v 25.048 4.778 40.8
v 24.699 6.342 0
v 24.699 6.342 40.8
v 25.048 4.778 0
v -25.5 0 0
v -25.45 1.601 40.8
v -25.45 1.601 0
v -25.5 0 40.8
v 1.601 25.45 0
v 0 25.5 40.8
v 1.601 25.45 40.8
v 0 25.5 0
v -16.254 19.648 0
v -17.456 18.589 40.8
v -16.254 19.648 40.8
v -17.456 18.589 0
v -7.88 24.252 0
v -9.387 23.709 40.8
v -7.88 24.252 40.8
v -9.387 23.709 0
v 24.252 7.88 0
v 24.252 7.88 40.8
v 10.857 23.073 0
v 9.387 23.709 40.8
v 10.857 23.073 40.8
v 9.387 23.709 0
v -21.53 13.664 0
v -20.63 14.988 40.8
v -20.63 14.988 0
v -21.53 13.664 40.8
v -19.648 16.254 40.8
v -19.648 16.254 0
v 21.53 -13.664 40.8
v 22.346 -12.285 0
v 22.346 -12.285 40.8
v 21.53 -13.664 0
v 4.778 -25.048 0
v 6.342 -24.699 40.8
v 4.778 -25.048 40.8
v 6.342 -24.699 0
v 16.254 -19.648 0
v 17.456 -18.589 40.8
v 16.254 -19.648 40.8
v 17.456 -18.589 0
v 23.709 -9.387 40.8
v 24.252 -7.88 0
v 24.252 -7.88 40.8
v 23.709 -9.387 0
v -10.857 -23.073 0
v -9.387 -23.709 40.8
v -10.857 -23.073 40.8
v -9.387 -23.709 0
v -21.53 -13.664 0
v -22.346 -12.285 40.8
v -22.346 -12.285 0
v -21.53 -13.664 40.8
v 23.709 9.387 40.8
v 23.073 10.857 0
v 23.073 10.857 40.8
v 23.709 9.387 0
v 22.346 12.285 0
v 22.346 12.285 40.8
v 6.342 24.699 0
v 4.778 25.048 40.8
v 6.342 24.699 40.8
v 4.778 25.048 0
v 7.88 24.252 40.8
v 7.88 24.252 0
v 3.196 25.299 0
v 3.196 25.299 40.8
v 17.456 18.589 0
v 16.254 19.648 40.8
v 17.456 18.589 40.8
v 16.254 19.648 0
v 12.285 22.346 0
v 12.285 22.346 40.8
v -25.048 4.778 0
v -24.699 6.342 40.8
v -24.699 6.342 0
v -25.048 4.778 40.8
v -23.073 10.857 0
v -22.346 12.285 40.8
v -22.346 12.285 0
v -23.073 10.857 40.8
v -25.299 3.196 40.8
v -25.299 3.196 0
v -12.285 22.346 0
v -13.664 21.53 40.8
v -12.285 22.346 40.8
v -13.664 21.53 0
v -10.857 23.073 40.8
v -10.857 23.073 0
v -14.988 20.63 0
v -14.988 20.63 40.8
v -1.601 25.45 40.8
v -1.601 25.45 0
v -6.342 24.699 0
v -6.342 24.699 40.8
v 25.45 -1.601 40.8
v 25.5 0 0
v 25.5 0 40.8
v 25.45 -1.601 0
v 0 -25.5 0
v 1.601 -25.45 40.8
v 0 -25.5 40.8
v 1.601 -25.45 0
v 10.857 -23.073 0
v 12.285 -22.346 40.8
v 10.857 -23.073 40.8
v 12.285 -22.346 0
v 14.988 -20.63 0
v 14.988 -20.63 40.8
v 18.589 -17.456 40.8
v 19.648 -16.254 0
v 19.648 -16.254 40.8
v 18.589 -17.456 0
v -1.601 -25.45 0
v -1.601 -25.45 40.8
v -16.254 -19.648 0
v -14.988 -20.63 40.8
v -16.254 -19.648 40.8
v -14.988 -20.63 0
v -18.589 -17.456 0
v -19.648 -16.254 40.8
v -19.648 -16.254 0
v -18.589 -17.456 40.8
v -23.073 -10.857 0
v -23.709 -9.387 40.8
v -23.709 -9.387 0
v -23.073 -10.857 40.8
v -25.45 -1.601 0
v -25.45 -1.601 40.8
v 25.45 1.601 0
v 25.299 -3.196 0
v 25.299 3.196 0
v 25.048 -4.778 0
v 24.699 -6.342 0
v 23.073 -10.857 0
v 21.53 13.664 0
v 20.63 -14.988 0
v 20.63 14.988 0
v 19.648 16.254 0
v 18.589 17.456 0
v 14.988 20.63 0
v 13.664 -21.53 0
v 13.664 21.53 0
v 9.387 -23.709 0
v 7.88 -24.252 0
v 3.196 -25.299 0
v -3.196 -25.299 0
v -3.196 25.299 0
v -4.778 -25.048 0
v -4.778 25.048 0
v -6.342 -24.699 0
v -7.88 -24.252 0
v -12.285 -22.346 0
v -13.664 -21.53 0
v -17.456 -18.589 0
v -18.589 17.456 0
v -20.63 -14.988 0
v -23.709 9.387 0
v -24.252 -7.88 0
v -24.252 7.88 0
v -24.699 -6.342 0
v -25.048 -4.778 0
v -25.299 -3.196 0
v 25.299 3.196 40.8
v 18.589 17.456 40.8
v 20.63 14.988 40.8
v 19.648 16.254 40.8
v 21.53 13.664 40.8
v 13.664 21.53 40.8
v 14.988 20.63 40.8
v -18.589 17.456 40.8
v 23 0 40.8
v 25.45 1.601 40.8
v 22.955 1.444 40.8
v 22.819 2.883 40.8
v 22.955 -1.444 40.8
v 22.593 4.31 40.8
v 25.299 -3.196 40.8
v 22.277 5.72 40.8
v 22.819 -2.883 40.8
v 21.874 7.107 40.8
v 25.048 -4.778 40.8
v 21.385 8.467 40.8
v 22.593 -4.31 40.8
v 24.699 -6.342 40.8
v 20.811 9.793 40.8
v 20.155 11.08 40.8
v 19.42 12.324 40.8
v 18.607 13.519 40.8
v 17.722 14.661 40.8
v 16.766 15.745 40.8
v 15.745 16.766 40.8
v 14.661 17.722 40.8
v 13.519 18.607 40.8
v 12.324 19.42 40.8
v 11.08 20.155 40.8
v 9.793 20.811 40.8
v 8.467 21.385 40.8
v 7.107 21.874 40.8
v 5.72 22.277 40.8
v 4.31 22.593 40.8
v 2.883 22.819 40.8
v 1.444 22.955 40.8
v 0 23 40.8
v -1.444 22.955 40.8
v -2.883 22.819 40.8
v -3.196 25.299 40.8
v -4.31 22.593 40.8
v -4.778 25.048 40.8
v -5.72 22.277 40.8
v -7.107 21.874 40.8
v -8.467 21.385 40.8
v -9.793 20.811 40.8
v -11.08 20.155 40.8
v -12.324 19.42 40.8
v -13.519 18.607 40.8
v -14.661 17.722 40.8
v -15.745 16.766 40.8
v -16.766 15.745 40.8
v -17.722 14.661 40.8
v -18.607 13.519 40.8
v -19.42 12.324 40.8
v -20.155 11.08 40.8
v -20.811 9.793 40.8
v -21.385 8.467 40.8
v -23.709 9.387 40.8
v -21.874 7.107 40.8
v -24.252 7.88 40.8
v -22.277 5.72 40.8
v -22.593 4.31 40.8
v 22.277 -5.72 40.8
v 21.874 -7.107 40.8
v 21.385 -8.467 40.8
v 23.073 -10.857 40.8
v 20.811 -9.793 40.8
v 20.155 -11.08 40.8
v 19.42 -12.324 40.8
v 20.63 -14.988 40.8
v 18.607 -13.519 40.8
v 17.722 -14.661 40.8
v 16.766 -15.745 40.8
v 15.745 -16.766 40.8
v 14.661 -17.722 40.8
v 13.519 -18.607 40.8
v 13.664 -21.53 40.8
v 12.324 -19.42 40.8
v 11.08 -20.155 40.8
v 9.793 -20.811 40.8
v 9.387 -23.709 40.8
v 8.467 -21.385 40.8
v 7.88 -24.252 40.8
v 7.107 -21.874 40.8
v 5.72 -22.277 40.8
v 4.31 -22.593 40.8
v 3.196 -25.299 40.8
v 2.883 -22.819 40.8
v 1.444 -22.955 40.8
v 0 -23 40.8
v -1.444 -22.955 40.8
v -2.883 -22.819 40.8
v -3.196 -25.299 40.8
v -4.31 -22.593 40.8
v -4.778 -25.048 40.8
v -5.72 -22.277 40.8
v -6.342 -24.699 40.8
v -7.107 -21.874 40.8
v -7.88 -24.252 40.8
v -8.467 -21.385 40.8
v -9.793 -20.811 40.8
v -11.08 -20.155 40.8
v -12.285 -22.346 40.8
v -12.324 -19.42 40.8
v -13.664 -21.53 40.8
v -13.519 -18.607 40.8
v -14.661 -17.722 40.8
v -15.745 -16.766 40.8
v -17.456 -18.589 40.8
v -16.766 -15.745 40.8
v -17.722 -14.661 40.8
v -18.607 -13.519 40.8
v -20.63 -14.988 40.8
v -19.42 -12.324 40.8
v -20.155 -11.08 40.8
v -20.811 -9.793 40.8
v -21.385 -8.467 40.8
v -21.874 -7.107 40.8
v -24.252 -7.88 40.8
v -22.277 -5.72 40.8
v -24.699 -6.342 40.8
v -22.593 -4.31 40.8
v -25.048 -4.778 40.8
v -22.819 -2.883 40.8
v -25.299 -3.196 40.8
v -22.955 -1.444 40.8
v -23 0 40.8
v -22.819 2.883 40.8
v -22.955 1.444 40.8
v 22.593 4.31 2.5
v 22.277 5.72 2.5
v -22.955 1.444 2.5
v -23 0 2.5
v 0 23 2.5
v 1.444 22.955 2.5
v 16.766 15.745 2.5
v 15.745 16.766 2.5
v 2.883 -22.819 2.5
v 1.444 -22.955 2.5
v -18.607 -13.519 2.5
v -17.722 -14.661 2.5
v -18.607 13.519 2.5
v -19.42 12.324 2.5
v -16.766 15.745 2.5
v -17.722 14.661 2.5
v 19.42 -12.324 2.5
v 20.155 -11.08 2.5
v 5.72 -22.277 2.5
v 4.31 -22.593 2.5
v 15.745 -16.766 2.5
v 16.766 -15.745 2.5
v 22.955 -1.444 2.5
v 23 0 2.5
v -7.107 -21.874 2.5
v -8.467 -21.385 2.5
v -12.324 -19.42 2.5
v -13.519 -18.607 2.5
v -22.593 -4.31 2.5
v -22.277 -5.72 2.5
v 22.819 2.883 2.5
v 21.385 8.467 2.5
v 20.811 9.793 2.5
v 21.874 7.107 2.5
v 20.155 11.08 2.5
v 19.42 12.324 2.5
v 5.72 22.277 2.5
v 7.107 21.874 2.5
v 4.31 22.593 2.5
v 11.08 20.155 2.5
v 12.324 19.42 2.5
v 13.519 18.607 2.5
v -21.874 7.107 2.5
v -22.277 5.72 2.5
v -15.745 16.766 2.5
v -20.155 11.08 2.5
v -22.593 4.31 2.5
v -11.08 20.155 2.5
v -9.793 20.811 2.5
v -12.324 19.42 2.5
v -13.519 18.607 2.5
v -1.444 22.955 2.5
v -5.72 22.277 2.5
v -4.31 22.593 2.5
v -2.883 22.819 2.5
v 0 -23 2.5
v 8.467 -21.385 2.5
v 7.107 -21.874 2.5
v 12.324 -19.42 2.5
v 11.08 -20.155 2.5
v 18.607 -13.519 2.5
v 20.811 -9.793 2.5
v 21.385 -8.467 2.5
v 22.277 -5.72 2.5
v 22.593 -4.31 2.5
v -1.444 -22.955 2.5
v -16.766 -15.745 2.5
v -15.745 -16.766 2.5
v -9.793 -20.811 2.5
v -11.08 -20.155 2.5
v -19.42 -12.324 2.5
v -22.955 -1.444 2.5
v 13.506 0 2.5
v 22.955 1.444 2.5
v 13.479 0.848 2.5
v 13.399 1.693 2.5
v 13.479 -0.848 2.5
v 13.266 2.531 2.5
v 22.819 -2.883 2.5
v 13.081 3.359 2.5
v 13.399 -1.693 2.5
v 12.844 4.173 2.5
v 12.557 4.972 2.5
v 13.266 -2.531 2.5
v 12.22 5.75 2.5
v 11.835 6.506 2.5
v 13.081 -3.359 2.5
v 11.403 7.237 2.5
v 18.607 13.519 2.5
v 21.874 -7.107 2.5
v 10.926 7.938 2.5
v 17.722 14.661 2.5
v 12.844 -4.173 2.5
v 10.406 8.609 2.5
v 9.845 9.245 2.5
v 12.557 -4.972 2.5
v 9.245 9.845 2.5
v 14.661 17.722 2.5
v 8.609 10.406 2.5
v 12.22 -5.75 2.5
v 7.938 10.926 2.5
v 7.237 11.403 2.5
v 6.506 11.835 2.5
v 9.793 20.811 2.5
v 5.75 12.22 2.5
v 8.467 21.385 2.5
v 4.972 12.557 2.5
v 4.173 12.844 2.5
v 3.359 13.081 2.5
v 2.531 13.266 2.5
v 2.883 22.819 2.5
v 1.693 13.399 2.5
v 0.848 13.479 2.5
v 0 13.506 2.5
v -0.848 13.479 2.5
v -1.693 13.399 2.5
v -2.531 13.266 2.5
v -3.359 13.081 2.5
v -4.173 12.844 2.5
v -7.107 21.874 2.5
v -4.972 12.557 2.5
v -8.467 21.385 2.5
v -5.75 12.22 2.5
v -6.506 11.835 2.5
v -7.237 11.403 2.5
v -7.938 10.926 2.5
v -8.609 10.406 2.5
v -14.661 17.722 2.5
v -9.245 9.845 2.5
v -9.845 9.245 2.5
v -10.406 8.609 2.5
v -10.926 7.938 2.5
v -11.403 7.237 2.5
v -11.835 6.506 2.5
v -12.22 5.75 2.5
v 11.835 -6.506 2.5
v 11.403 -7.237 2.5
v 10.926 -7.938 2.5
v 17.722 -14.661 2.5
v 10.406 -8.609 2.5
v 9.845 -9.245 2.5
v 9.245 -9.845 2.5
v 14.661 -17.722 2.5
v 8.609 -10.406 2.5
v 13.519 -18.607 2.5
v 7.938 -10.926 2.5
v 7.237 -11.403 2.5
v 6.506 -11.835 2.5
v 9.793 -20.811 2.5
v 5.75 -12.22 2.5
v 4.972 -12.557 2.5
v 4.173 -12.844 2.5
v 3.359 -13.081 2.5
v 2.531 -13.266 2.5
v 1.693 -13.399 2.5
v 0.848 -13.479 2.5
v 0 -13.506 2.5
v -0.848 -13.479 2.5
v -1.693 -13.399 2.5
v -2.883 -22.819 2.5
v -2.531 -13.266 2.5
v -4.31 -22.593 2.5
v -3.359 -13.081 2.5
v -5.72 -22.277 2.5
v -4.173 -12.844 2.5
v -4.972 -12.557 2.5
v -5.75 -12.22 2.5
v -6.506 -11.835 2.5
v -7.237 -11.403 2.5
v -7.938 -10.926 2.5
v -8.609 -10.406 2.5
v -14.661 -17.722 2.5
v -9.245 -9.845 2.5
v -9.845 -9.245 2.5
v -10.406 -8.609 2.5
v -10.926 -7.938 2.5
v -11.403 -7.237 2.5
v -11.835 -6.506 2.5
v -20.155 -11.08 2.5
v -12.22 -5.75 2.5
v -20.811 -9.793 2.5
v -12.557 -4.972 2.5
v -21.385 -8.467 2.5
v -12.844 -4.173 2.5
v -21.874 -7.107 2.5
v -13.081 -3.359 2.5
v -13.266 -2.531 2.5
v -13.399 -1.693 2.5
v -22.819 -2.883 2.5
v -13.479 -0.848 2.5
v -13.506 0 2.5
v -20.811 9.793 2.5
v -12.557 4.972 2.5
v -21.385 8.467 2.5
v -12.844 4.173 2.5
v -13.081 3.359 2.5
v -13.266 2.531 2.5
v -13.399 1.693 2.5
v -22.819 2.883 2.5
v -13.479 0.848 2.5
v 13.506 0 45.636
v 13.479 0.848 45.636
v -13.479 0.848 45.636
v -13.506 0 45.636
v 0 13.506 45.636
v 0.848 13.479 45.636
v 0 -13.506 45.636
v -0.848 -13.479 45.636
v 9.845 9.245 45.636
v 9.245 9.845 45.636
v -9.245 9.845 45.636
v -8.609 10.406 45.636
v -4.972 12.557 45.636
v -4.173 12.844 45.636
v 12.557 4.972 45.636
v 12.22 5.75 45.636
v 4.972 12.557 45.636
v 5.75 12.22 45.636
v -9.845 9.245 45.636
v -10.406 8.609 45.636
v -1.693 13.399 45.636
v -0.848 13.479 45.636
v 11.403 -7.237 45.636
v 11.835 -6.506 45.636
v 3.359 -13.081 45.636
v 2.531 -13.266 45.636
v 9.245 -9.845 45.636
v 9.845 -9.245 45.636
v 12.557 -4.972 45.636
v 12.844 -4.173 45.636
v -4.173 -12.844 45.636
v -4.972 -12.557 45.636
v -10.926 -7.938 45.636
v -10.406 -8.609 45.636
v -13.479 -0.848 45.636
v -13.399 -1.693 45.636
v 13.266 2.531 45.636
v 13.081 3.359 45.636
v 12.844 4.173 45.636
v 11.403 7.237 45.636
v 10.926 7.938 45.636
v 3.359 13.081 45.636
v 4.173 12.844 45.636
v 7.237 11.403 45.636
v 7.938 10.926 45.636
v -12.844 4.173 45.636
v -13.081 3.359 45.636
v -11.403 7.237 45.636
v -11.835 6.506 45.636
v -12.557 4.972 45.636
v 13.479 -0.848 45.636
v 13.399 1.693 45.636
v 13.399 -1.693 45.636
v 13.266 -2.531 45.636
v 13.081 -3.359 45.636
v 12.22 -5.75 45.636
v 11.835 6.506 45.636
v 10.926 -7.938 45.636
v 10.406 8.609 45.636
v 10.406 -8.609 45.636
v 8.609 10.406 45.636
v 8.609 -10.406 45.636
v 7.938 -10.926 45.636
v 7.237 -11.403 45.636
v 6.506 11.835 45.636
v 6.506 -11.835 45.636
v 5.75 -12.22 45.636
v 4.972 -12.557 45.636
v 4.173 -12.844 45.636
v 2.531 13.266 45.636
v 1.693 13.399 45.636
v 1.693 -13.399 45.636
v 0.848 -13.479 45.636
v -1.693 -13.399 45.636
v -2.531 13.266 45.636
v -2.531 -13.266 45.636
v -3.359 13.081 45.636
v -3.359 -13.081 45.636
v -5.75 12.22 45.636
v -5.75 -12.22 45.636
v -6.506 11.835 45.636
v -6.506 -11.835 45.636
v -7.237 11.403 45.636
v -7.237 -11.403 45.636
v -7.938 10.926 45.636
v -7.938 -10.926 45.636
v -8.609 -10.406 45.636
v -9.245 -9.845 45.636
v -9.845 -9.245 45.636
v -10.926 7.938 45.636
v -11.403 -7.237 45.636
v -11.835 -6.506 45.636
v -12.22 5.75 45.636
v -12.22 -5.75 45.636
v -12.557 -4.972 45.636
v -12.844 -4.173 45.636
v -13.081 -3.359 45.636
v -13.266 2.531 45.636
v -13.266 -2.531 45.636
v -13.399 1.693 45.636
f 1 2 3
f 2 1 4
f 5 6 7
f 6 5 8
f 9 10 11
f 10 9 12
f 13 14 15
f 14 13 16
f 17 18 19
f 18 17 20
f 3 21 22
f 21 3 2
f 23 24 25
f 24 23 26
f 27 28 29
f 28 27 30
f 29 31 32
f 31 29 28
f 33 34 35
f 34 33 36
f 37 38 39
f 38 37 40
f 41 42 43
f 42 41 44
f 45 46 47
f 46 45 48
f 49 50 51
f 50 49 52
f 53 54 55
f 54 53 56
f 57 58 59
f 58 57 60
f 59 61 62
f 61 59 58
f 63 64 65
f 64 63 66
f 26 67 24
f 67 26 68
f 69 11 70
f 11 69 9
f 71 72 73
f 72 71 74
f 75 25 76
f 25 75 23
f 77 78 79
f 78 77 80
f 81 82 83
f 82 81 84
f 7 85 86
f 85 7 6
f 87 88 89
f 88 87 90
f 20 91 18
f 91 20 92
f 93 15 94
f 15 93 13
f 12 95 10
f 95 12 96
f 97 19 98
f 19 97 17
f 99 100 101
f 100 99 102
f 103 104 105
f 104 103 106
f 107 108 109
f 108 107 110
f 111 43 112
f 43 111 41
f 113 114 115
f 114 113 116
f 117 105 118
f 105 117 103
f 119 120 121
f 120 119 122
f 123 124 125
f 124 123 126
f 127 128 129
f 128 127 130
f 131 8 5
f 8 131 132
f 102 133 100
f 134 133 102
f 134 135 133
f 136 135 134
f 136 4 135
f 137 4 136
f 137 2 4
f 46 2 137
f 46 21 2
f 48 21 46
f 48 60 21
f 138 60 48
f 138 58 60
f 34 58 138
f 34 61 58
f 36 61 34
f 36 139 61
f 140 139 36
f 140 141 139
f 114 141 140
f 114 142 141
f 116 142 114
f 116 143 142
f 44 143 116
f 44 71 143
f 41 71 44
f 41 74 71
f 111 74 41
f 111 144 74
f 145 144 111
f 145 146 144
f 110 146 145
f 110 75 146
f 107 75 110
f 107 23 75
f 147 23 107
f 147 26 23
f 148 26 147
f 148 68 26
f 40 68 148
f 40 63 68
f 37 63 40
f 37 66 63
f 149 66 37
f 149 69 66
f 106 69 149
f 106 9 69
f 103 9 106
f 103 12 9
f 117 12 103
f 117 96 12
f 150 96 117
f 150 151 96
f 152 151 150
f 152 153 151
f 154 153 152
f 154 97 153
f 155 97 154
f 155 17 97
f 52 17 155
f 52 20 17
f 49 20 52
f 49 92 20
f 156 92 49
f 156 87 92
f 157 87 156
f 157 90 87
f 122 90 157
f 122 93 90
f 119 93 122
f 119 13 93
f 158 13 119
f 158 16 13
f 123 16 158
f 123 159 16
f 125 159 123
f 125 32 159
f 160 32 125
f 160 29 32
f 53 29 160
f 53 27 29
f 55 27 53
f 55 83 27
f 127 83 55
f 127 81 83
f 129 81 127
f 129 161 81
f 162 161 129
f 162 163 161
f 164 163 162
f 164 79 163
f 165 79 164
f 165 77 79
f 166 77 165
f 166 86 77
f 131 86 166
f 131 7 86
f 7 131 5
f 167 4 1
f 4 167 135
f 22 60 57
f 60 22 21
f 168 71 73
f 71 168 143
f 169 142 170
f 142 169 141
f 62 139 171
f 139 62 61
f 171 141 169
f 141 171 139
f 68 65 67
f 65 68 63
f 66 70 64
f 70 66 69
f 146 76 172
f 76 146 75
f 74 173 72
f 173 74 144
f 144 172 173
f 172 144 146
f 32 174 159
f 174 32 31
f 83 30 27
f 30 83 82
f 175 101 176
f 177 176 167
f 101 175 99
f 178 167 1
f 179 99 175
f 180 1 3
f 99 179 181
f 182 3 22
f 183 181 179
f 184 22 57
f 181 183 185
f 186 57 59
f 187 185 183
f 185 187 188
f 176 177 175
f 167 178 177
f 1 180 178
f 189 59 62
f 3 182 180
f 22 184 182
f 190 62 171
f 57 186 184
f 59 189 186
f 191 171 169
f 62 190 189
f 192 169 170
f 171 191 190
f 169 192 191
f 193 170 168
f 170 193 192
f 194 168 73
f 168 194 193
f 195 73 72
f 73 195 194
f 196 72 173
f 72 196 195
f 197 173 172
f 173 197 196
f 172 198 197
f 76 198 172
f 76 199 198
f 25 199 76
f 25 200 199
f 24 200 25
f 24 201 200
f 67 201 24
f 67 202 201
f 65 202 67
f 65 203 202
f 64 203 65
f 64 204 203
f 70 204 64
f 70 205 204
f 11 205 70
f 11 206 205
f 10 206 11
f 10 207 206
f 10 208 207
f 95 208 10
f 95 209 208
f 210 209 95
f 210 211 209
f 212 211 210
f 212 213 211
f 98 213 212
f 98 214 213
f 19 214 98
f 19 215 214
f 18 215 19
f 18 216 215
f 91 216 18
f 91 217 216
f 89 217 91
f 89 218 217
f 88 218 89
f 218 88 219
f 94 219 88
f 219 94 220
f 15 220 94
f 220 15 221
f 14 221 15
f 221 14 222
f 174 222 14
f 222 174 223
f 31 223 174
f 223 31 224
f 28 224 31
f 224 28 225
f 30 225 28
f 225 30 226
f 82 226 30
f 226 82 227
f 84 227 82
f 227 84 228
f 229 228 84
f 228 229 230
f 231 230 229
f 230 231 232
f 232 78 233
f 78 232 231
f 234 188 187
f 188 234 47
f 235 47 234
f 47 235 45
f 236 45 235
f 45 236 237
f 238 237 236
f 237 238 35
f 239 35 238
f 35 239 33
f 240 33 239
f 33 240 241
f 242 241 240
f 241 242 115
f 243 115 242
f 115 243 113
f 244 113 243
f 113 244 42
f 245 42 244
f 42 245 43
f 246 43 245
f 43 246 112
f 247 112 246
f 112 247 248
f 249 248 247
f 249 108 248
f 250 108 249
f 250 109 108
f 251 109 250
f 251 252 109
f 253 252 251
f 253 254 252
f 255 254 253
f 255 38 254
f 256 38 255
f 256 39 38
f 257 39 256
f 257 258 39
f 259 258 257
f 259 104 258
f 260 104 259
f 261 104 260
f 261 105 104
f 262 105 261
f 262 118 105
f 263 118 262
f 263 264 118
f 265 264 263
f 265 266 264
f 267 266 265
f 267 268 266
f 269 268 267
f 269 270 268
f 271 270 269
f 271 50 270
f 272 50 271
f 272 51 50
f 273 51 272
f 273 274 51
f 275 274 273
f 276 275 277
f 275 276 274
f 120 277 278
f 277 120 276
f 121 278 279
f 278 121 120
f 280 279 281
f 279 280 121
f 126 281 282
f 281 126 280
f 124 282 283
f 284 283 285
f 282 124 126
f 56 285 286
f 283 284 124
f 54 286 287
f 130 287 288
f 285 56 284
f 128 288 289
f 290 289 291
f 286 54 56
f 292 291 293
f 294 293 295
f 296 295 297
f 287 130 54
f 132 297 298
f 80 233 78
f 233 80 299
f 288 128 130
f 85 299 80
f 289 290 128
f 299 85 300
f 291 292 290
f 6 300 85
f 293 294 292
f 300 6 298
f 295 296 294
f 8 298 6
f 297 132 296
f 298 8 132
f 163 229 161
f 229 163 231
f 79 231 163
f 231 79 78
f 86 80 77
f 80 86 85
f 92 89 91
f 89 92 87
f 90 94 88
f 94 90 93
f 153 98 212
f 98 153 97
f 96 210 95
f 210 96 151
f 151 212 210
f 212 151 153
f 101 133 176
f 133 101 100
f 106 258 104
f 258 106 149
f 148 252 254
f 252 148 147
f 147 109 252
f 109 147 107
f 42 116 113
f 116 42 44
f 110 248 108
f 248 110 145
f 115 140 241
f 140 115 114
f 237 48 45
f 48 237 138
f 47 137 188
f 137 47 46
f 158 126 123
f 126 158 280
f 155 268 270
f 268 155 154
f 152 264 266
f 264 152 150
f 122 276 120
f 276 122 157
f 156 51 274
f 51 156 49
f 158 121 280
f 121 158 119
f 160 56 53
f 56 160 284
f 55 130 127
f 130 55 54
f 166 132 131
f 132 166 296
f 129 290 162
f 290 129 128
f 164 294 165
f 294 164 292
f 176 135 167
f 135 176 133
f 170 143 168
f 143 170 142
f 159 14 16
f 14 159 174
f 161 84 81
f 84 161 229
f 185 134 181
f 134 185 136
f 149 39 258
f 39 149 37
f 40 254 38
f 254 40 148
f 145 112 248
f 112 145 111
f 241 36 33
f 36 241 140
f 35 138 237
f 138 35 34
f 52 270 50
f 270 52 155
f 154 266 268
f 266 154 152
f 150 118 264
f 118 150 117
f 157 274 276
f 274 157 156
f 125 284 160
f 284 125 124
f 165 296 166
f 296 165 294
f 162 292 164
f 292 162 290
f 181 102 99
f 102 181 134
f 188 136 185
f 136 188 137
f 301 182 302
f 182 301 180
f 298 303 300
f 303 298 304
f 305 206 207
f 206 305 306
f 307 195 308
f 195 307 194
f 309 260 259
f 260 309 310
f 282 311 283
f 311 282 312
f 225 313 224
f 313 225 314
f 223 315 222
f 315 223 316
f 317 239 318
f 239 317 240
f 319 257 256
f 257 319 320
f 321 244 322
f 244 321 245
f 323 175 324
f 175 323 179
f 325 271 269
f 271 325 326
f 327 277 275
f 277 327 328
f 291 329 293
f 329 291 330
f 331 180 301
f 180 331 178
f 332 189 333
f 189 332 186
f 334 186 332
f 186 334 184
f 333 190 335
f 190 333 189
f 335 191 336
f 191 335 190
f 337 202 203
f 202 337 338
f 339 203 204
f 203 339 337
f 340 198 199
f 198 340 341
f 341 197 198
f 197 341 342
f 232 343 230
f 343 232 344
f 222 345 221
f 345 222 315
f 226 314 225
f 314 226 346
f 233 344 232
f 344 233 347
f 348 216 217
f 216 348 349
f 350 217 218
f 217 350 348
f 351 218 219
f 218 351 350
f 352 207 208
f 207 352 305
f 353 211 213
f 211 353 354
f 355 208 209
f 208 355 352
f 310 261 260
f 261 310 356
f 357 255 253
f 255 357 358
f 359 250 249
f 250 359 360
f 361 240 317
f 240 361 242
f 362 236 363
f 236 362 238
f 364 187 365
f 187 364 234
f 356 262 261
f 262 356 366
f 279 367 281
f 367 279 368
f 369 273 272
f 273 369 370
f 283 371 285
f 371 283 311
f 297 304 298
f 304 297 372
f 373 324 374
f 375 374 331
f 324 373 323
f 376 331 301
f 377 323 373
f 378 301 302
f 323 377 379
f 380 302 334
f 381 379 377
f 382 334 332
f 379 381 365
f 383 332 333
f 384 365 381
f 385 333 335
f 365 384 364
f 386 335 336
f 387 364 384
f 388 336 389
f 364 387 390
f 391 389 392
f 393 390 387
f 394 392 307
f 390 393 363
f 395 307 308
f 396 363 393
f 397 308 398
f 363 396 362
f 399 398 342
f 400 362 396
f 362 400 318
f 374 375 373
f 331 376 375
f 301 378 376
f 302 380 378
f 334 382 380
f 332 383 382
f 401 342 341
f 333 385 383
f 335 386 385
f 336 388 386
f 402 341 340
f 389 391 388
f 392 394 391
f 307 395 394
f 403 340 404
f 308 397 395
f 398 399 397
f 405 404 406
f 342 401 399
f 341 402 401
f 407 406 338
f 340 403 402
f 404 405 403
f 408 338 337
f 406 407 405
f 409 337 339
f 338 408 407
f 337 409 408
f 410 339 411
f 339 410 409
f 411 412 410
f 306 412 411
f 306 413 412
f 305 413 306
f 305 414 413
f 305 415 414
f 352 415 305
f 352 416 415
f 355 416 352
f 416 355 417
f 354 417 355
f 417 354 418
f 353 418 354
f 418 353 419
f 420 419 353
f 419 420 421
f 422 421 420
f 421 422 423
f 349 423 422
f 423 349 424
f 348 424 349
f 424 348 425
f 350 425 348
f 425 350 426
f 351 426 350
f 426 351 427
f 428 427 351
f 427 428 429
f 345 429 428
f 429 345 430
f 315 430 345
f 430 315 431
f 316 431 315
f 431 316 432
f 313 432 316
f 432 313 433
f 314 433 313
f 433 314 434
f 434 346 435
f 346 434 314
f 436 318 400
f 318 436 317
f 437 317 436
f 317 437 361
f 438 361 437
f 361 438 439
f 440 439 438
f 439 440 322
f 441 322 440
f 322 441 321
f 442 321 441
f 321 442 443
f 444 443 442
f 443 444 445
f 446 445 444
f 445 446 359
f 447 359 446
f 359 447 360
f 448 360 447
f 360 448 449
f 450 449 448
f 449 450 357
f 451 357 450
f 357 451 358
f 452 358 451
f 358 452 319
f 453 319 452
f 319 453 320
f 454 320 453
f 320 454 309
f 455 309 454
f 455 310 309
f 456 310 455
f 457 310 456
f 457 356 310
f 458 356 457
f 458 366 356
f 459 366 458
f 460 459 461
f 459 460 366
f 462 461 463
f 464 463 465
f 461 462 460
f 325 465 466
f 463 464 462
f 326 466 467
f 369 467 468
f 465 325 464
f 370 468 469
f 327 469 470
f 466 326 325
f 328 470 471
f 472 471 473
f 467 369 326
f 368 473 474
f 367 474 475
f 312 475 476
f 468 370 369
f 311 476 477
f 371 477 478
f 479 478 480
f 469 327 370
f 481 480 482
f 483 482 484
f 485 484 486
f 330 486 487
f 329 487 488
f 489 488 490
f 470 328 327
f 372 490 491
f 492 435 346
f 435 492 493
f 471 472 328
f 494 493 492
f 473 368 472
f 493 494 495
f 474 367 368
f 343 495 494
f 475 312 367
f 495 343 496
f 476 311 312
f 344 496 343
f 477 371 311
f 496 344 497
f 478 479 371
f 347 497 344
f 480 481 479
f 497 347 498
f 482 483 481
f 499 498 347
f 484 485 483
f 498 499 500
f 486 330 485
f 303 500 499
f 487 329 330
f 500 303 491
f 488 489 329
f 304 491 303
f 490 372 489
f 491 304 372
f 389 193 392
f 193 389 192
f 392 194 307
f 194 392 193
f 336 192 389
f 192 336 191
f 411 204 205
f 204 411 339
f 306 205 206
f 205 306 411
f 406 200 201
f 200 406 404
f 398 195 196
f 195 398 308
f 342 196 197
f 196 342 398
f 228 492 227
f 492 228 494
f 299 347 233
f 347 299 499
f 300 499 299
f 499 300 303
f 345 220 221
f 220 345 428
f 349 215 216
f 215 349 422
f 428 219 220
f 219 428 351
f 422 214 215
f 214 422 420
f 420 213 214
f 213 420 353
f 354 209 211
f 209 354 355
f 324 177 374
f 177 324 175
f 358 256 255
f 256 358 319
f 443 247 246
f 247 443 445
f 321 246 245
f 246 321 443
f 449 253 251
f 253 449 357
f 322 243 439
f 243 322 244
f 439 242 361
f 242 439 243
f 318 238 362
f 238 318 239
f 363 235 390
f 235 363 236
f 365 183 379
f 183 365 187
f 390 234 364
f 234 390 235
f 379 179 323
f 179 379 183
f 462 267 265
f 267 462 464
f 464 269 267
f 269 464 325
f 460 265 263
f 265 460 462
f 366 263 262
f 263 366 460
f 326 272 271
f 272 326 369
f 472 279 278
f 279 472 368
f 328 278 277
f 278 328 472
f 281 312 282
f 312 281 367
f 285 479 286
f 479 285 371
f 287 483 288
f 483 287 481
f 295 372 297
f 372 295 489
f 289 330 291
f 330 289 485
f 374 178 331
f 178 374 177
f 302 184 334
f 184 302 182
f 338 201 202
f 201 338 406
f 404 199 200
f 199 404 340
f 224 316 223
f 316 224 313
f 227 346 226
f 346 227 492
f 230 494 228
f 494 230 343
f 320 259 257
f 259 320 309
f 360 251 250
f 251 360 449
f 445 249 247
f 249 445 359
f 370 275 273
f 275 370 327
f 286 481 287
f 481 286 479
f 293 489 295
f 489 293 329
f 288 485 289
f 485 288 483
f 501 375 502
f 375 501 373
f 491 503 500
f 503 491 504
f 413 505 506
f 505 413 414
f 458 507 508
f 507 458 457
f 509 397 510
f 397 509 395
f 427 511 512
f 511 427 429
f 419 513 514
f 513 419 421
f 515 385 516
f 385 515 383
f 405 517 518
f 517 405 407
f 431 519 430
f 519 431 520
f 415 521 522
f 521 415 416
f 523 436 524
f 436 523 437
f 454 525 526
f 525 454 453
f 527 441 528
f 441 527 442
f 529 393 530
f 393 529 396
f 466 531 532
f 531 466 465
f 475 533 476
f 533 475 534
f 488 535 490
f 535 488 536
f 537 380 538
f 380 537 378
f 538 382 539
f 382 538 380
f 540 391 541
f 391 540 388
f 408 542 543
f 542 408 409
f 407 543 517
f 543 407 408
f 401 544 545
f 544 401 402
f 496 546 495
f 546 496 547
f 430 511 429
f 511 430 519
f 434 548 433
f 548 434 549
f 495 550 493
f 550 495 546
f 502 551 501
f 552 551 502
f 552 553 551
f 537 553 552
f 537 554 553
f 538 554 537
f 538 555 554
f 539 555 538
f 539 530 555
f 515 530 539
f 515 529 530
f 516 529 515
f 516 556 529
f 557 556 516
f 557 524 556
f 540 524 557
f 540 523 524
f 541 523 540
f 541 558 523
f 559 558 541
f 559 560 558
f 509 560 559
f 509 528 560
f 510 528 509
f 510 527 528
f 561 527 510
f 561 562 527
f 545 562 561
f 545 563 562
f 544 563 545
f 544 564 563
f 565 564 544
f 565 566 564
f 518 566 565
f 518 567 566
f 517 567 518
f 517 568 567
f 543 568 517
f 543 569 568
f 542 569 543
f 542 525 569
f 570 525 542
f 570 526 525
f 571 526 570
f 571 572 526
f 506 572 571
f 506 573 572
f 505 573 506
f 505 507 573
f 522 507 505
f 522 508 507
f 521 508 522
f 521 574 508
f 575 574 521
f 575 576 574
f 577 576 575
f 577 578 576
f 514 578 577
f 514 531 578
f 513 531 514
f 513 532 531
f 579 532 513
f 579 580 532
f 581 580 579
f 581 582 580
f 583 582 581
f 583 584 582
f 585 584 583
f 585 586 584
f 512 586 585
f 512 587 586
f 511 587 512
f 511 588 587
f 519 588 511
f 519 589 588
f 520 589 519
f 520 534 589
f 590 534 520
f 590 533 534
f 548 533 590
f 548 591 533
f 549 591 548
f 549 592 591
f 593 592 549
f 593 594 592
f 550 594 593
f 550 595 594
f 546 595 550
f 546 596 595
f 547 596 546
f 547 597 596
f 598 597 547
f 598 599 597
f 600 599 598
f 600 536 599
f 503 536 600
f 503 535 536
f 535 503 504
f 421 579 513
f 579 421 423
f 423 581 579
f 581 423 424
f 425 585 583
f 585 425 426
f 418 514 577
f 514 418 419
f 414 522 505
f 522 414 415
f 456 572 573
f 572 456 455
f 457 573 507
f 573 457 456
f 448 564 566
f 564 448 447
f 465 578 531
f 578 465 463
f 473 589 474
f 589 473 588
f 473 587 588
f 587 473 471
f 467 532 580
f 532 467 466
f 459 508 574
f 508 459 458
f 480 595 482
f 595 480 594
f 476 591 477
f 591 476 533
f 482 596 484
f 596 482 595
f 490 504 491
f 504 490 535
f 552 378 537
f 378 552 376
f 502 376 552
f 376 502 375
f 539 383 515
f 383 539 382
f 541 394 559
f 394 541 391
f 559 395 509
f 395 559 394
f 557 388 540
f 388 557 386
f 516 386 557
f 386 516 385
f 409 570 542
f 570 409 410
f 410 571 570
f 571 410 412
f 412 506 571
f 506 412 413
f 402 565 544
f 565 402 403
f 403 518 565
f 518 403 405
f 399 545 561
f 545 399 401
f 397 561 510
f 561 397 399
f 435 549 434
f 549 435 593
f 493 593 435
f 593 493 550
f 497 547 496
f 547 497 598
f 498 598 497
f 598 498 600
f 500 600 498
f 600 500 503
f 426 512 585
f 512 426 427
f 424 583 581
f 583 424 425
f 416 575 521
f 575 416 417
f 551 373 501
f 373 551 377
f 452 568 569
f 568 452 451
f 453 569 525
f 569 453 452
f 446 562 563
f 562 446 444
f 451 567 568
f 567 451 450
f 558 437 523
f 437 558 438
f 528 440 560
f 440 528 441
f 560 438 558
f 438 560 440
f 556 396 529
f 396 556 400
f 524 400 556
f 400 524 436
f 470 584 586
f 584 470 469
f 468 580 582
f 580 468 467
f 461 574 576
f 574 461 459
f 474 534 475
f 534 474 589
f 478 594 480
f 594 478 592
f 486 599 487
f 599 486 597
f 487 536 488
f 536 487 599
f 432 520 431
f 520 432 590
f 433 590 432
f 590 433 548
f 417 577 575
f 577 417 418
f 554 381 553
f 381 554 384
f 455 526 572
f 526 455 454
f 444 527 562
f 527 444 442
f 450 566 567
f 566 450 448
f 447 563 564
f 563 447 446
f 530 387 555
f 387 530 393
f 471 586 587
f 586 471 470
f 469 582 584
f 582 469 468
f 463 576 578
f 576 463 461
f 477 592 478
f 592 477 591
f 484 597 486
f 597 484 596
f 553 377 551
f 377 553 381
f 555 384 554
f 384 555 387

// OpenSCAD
$fn = 100;

// The outerTubeDiameter and outerTubeWallThickness should be customised  to suit your hardware. The values below are measurements taken from a 50 mm PVC pipe (DVW501 - 50 mm is the internal diameter.
// 60.3 and 3.15 is per http://www.gbfans.com/wiki/File:Stefan%27s_Proton_Pack_Plans_Page_5.jpg
// By default, the booster cap will have the same wall thickness as the outer tube to keep it consistent. If this is too thick or thin, customise it to suit.

outerTubeDiameter = 56.0;   //60.3;
outerTubeWallThickness = 2.5;   //3.15;

wallThickness = outerTubeWallThickness;

/***** DO NOT MODIFY BELOW THIS LINE *****/

outerTubeId = outerTubeDiameter - outerTubeWallThickness*2;

difference() {
    cylinder(d=outerTubeId, h=outerTubeId*0.8);
    
    translate([0, 0, wallThickness])
    cylinder(d=outerTubeId - wallThickness*2, h=outerTubeId*0.8);
}

innerCylinderHeightRatio = 1 + 6.4/54.0;
innerCylinderHeight = innerCylinderHeightRatio*outerTubeId*0.8;

innerCylinderIdRatio = 28.6/54.0;
innerCylinderId = innerCylinderIdRatio*outerTubeId;

cylinder(d=innerCylinderId, h=innerCylinderHeight);
